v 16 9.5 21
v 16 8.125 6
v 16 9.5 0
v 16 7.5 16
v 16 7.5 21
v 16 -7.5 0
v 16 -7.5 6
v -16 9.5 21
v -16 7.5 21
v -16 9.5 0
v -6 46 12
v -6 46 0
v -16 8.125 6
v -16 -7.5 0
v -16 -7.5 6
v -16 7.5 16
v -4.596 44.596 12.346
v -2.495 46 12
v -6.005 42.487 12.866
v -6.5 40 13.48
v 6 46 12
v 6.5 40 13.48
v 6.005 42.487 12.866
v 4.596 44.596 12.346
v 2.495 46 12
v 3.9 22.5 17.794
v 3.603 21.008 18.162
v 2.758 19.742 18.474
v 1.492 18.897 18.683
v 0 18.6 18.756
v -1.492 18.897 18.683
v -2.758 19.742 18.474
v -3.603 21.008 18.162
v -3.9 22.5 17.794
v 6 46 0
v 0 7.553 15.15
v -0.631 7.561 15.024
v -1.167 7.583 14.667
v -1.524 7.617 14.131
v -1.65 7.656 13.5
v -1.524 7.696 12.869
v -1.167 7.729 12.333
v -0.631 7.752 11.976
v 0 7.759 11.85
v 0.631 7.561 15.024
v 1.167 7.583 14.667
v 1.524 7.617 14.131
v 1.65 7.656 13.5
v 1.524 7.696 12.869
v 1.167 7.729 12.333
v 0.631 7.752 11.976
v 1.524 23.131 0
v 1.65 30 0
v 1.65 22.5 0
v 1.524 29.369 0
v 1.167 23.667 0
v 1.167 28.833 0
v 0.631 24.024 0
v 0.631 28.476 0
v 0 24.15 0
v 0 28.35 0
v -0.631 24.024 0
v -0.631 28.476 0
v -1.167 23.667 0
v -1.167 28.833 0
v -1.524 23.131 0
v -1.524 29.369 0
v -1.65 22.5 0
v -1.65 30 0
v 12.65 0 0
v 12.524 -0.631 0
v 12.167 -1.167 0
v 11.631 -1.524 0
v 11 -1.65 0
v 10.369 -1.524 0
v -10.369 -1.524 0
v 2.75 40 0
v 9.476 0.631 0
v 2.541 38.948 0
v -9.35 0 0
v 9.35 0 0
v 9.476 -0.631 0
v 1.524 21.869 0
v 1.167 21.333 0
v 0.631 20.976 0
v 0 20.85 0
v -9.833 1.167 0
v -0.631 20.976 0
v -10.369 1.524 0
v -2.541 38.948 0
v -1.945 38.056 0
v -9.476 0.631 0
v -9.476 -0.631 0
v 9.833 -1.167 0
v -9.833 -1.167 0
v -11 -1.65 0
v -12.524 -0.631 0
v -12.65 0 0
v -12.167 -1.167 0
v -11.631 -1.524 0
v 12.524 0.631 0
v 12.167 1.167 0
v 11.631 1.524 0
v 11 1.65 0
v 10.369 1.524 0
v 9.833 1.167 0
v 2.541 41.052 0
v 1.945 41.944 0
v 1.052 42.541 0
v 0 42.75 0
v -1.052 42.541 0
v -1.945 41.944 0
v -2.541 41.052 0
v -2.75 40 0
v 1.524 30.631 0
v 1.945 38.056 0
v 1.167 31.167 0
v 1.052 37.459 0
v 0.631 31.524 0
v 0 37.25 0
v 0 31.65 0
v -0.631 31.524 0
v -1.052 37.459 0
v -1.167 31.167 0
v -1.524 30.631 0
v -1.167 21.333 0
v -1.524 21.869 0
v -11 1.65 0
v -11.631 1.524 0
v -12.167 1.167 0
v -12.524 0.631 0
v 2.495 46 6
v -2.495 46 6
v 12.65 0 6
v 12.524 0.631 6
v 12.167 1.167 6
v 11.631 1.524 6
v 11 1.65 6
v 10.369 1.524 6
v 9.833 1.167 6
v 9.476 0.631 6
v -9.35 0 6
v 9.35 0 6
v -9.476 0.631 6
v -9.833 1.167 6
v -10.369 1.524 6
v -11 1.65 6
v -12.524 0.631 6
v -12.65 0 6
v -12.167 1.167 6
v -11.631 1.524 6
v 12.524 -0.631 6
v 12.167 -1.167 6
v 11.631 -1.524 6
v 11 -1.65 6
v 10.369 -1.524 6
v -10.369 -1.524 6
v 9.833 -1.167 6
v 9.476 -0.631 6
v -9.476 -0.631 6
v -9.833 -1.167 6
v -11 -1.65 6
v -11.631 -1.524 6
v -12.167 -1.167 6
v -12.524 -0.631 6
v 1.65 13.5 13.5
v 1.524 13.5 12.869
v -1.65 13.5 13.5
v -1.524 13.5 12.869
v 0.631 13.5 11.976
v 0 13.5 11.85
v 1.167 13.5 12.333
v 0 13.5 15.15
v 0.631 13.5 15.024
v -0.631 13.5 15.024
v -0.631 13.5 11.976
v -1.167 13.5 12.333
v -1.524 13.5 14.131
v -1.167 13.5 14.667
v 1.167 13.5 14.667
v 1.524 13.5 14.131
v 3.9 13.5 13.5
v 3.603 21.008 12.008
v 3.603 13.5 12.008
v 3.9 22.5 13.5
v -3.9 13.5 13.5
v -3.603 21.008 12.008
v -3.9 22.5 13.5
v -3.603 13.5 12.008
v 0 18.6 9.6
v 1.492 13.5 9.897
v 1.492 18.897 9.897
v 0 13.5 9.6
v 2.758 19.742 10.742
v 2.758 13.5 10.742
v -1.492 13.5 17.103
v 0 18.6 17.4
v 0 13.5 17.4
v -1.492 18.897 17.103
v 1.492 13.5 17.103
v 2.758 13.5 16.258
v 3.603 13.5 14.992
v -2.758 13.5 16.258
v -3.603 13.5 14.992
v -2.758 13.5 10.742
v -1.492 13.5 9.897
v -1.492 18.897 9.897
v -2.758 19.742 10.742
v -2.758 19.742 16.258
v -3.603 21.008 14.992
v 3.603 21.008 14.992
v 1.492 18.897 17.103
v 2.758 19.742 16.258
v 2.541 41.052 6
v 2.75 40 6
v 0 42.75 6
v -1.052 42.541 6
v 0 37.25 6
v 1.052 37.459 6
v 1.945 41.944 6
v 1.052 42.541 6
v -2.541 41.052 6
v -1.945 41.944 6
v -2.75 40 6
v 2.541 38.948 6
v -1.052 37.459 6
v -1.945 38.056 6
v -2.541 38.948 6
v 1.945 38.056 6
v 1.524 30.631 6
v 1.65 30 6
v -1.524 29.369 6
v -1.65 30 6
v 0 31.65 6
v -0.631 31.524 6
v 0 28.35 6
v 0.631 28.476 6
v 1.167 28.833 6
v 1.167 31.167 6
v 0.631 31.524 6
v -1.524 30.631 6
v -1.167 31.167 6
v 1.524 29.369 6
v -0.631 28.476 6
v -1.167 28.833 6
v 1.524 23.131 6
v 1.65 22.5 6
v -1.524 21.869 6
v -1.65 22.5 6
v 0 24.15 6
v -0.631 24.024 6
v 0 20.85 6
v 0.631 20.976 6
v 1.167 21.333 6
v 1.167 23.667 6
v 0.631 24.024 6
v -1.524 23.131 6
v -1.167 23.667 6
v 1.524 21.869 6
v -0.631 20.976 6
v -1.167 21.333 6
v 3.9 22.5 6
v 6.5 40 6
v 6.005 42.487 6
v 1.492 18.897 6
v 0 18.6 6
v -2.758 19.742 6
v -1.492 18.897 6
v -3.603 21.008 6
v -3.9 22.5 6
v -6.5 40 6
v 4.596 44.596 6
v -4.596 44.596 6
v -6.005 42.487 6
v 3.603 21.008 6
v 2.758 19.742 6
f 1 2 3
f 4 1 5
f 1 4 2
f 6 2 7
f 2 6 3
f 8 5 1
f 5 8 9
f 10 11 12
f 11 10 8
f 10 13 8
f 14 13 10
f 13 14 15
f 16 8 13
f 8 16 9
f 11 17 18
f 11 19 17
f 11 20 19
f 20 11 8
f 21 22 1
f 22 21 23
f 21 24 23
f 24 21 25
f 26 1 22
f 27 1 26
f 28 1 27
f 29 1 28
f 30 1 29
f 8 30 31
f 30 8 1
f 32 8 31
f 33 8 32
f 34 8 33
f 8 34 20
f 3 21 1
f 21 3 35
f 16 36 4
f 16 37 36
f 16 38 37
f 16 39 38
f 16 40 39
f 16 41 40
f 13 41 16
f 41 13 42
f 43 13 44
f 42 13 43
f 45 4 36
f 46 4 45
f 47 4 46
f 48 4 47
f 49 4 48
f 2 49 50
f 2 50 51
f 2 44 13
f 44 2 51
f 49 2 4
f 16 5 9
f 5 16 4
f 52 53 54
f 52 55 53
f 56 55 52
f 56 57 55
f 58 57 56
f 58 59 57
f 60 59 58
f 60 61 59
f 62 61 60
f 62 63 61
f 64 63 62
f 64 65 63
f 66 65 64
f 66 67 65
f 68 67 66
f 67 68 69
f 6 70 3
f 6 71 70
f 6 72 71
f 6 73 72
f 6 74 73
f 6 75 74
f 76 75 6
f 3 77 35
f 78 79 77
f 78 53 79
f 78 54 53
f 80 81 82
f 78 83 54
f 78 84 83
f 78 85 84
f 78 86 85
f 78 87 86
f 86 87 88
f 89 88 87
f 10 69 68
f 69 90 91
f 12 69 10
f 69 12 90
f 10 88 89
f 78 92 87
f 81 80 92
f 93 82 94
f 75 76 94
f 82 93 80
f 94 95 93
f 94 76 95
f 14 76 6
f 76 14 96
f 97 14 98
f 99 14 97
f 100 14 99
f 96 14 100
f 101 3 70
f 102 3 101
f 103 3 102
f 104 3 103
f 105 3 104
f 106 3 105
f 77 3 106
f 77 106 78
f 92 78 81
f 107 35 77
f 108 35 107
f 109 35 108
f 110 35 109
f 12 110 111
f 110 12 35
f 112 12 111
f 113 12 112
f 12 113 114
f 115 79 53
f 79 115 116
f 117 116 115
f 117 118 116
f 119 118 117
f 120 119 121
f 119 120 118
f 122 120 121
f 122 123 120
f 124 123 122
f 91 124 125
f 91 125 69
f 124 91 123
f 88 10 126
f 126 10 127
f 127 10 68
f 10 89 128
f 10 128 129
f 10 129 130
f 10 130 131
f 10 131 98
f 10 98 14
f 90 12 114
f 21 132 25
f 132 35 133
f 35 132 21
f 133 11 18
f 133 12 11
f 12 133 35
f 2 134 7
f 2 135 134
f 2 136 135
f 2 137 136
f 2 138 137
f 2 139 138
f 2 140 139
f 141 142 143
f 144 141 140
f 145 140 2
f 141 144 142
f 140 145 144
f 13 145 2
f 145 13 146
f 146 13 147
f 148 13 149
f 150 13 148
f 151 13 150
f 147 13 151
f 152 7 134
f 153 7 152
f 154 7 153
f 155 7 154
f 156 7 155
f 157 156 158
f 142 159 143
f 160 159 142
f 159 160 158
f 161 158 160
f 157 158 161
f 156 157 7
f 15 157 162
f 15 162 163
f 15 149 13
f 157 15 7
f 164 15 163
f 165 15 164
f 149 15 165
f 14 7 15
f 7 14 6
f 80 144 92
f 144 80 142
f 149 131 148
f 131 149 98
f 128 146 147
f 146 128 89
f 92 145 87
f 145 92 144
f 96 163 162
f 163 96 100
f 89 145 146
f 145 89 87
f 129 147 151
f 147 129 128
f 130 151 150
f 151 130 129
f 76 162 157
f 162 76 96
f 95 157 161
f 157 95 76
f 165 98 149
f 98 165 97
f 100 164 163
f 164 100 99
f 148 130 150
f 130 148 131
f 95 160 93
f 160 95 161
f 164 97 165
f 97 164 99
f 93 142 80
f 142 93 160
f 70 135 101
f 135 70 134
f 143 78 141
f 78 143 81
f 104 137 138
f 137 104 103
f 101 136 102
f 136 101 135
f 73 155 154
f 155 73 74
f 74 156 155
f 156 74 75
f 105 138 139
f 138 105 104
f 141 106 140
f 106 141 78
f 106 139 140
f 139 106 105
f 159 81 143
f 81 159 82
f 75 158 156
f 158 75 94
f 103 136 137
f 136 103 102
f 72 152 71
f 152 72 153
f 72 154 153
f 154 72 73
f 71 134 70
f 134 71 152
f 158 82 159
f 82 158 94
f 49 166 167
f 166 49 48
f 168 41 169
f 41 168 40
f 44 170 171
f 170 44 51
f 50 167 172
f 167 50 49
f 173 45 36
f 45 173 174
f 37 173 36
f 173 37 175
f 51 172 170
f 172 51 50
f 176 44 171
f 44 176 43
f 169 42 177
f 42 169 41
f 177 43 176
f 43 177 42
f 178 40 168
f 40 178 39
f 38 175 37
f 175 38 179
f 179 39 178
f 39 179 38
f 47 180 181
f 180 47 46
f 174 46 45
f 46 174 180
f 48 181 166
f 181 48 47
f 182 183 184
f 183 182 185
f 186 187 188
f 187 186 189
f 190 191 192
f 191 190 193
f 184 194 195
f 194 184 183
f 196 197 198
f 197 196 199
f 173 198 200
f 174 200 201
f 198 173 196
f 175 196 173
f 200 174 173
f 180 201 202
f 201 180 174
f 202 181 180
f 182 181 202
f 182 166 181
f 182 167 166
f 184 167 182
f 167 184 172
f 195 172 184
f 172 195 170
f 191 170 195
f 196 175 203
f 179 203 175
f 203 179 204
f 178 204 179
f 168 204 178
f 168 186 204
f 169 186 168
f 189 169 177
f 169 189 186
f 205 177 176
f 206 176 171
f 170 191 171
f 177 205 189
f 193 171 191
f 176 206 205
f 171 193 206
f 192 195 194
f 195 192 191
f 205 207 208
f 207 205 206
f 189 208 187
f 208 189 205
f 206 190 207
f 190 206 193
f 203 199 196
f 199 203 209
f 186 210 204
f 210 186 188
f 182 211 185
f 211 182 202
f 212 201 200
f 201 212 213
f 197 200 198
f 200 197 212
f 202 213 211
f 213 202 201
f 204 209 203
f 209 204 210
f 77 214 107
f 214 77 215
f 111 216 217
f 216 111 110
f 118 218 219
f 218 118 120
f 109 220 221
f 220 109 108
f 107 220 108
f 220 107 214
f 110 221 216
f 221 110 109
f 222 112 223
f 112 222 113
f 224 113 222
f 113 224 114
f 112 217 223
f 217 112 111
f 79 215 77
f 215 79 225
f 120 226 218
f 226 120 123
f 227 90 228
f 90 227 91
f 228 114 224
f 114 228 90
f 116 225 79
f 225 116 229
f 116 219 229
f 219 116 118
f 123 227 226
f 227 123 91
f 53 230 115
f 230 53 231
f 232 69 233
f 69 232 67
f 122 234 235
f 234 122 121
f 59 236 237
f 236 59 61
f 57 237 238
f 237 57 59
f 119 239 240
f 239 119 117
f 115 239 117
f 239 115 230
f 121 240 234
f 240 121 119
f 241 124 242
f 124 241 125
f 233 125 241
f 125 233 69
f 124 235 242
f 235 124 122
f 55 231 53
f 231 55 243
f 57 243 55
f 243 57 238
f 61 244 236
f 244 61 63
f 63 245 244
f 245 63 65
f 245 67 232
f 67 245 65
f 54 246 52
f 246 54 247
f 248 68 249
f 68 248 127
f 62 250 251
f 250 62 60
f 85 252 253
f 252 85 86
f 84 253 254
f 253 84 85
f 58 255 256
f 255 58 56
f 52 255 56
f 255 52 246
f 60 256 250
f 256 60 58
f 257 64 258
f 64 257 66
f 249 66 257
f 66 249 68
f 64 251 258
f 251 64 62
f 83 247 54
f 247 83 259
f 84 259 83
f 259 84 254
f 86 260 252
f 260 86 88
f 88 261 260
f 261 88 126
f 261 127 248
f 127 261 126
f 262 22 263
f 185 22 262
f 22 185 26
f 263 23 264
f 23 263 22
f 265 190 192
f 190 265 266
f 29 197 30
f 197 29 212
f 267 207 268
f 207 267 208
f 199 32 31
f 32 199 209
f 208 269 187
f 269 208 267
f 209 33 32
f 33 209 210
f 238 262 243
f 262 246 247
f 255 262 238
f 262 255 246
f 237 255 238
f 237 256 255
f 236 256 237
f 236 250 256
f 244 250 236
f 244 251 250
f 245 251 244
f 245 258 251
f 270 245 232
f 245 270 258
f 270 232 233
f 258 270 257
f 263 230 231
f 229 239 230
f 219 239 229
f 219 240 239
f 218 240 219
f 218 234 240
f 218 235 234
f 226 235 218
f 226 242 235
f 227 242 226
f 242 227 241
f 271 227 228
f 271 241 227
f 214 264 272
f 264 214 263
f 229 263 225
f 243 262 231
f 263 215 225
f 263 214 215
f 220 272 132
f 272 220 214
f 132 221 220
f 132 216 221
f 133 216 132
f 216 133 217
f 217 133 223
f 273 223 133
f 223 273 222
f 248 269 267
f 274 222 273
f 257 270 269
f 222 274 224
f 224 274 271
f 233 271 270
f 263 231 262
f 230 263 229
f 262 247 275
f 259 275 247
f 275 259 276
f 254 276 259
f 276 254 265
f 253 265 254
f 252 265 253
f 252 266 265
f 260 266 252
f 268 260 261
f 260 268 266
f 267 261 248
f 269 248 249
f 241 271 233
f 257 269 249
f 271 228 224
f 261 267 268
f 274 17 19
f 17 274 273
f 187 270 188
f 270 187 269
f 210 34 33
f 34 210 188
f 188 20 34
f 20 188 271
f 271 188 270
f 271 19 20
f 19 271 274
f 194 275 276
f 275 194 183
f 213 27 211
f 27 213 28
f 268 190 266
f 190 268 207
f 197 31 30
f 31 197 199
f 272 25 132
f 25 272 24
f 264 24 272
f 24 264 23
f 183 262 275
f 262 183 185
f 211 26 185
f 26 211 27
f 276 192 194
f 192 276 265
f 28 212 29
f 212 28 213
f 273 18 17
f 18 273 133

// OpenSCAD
// A basic mount to attach a load cell to an OpenBeam strut
// The load cell is at 90 degrees to the strut, with its hole
// in line with the centre of the strut.
// This is designed for Phidgets 3132, 3133 and 3134 load cells

holes = [[5, 40], [3, 30], [3, 22.5]];
cell_w = 12;
mount_w = cell_w + 20;
ob = 15; //openbeam size
t = 6; //thickness of mount
$fn=16;

difference(){
    union(){
        hull(){
            for(h=holes) translate([0,h[1],6]) cube(12, center=true);
            //for(h=holes) translate([0,h[1],ob+t-6]) cube(12, center=true); //uncomment for tension mount
            
            translate([-mount_w/2,ob/2+1,0]) cube([mount_w, 1, 12]);
            translate([-mount_w/2, ob/2, ob-5+t]) cube([mount_w, 2, 5]);
        }
        translate([-mount_w/2, -ob/2, 0]) cube([mount_w, ob+2, t]);
    }
    
    //mounting holes
    //translate([0,0,ob+t]) mirror([0,0,1]) //uncomment for tension
    union(){
        for(h=holes) translate([0,h[1],-99]) cylinder(d=h[0]*1.1, h=999);
        hull() for(h=holes){
            translate([0,h[1],t]) cylinder(r=h[0]*1.3, h=999);
        }
    }
    
    for(d=[-1,1]) translate([d*(cell_w/2+5), 0, -99]) cylinder(d=3*1.1,h=999);
        
    //this allows the "compression" version to do tension too
    translate([0, ob/2+t, ob/2+t]) rotate([-90,0,0]){
        translate([0,0,-99]) cylinder(d=3*1.1, h=99+1);
        cylinder(r=3*1.3, h=holes[0][1]-ob/2-t);
    }
}
    
